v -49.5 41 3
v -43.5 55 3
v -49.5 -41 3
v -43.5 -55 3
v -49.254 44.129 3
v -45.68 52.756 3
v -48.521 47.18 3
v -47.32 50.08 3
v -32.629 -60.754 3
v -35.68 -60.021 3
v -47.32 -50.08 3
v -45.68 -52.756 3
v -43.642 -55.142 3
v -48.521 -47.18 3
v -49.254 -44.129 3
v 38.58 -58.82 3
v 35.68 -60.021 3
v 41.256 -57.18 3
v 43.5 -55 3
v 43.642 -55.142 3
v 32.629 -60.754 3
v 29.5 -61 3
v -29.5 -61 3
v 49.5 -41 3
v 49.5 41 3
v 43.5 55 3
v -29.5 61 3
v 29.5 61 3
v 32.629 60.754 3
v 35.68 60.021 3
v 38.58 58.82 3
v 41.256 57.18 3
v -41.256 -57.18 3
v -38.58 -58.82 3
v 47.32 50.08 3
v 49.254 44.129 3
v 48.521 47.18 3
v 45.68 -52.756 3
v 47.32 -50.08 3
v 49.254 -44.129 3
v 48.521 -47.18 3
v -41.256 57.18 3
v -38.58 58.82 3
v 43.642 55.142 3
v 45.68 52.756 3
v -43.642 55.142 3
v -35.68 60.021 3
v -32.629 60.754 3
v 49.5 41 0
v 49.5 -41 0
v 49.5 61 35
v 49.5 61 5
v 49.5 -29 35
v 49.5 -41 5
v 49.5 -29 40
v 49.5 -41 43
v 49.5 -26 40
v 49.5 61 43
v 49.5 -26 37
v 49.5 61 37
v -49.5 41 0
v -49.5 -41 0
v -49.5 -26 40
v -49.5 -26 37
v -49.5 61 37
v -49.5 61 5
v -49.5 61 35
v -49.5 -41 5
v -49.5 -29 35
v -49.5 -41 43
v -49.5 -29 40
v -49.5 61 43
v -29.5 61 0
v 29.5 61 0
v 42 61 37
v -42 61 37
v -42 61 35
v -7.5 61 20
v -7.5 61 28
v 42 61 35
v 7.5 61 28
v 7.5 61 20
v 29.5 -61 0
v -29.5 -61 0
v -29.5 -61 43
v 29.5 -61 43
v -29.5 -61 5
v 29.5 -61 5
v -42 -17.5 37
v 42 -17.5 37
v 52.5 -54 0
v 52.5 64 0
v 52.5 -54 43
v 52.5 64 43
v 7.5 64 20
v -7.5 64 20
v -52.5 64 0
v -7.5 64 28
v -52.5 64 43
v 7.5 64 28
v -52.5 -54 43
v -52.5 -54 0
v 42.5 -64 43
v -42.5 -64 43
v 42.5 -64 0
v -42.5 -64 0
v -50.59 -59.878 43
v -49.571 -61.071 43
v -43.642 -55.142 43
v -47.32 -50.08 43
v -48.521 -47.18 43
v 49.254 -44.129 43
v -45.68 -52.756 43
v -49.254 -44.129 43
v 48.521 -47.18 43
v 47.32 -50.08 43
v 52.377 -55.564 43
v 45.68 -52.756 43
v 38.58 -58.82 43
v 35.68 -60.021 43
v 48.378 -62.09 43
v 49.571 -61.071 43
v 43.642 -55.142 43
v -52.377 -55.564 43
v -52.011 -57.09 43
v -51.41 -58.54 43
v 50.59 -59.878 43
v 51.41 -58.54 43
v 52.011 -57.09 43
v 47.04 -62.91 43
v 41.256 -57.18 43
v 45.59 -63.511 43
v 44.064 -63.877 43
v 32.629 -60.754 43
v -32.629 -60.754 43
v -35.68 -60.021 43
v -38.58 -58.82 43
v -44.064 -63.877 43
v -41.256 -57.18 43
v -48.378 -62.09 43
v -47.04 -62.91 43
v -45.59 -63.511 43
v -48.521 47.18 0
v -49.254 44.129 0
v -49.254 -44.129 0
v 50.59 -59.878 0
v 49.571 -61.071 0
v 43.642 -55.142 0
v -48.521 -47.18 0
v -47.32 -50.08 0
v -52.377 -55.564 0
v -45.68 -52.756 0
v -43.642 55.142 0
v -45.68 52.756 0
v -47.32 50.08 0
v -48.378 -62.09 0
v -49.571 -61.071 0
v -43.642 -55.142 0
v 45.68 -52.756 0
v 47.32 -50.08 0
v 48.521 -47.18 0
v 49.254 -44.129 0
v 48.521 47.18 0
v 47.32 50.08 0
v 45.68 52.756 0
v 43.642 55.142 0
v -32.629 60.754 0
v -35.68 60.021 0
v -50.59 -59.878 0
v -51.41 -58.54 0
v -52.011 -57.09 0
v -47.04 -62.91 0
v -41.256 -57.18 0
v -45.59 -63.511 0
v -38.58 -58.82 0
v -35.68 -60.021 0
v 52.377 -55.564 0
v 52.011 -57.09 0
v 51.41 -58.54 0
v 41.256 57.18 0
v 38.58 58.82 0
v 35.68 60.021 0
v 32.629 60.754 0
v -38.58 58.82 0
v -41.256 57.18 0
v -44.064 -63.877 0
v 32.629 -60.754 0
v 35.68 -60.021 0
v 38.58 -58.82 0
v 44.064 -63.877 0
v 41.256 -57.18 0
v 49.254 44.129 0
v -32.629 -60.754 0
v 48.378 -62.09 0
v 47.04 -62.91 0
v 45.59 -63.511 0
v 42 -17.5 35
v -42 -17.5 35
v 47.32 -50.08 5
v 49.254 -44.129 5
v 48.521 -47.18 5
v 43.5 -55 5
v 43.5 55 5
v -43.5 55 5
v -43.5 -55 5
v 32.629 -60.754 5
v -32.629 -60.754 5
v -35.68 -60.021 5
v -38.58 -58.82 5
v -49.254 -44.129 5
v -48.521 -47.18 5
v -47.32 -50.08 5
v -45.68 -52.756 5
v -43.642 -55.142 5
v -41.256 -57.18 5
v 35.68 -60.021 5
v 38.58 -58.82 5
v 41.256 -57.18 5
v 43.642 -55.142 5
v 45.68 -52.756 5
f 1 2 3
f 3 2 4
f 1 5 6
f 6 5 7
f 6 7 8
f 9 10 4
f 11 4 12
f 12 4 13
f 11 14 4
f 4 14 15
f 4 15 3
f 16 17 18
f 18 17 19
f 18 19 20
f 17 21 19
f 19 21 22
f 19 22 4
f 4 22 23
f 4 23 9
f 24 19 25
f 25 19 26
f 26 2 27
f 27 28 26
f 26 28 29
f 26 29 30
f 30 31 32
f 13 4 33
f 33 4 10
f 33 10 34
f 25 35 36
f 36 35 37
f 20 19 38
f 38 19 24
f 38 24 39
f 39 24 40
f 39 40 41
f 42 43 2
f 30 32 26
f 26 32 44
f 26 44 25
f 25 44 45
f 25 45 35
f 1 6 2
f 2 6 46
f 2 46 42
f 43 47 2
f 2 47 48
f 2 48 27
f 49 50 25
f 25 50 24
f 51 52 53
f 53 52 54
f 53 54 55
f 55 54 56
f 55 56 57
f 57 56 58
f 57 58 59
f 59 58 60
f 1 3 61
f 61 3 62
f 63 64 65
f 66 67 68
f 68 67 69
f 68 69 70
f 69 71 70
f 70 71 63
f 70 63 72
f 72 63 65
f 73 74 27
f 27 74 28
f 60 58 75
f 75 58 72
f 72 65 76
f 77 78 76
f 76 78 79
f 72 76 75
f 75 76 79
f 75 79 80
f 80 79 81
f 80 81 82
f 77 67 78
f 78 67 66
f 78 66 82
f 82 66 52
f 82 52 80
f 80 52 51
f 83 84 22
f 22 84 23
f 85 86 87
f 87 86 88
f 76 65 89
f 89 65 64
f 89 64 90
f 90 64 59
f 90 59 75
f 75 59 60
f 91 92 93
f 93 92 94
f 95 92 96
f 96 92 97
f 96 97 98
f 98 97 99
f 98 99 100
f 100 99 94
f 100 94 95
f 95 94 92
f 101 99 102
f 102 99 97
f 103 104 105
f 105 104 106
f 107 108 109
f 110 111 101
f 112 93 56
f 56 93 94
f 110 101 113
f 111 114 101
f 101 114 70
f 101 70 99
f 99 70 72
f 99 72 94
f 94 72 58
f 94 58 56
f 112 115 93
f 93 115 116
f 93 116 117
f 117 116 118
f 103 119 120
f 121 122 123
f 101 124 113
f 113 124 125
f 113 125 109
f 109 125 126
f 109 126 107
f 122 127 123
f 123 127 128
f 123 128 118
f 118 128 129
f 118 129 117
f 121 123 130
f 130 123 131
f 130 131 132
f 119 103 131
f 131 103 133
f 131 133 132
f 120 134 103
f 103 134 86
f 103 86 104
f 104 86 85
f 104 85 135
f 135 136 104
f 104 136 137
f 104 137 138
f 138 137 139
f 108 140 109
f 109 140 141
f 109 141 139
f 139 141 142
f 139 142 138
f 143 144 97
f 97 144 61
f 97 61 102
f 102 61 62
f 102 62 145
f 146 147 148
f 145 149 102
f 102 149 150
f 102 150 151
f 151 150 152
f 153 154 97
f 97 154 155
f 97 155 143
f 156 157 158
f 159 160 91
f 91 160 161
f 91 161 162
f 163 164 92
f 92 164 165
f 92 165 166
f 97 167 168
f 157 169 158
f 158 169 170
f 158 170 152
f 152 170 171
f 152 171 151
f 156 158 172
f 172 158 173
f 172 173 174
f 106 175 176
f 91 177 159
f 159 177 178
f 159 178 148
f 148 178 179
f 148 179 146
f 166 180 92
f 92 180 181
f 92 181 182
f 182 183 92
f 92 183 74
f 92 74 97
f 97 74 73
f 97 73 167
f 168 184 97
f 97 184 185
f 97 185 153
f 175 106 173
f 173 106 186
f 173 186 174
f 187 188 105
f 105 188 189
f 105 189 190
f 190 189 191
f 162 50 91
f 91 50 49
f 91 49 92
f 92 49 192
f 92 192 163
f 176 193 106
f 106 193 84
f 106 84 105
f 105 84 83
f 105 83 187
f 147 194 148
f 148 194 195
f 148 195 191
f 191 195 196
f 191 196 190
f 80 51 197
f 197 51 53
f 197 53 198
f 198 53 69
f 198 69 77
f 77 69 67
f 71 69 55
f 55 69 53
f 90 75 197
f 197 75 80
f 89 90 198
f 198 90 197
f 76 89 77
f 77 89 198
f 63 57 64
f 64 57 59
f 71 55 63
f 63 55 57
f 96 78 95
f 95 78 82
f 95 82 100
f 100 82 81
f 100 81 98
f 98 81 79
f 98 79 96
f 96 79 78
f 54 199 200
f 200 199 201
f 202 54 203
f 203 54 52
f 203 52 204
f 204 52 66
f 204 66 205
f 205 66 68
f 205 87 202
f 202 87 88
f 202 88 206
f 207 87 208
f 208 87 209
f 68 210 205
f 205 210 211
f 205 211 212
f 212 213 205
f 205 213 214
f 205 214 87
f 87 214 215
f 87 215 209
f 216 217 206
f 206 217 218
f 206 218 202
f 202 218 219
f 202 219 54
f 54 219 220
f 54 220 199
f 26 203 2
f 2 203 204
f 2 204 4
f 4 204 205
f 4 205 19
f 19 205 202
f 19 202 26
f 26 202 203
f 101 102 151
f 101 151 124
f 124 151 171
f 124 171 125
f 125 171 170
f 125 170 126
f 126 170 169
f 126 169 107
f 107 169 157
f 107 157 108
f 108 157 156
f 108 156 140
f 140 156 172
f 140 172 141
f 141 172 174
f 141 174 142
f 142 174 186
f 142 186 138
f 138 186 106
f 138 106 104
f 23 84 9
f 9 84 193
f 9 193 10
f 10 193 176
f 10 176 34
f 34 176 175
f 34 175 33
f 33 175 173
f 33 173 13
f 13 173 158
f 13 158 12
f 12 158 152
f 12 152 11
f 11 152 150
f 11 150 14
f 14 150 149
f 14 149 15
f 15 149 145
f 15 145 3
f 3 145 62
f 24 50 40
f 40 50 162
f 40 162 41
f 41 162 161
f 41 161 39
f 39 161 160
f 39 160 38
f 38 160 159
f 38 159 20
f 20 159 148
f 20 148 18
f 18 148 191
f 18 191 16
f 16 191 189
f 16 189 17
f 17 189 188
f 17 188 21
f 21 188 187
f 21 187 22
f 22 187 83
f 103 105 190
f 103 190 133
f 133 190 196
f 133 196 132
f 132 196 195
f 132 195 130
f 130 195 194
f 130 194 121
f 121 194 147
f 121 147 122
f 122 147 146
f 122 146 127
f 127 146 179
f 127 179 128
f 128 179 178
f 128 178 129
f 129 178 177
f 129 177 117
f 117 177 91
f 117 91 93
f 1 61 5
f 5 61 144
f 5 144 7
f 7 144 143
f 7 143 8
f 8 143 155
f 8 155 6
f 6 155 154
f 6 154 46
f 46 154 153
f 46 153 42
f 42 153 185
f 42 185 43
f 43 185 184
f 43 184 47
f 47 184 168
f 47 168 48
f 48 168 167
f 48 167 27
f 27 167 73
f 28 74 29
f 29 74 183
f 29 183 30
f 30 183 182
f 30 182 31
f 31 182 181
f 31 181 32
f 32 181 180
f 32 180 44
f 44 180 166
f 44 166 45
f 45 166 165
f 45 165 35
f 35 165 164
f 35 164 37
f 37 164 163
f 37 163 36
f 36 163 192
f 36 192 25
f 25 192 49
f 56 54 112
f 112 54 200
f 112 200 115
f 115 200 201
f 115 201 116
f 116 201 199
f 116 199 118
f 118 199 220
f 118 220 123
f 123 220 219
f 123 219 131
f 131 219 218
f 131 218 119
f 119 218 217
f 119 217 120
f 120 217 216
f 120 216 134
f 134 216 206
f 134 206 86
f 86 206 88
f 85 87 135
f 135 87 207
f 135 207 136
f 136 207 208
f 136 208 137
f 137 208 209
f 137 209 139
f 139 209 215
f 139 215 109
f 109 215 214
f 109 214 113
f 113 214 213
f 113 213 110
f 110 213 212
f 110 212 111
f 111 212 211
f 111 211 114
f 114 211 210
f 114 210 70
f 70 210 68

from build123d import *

# Parameters (mm, degrees)
SKETCH_1_W          = 105
SKETCH_1_H          = 128
EXTRUDE_1_DEPTH     = 43
SKETCH_2_W          = 99
SKETCH_2_H          = 122
CUT_EXTRUDE_1_DEPTH = 50
SKETCH_3_W          = 99
SKETCH_3_H          = 2
EXTRUDE_2_DEPTH     = 90
CUT_EXTRUDE_2_REACH = 92.671
SKETCH_4_W          = 84
SKETCH_4_H          = 70
SKETCH_5_W          = 99
SKETCH_5_H          = 3
EXTRUDE_3_DEPTH     = 3
SKETCH_6_W          = 15
SKETCH_6_H          = 8
CUT_EXTRUDE_3_DEPTH = 10
SKETCH_8_W          = 84
SKETCH_8_H          = 8.5
CUT_EXTRUDE_4_DEPTH = 2
EXTRUDE_4_REACH     = 129.863
SKETCH_9_W          = 2
SKETCH_9_H          = 122
SKETCH_10_W         = 87
SKETCH_10_H         = 110
CUT_EXTRUDE_5_DEPTH = 8
FILLET_10_R         = 10
FILLET_11_R         = 20
FILLET_12_R         = 20
FILLET_13_R         = 10
FILLET_14_R         = 20
FILLET_15_R         = 20
FILLET_16_R         = 20


with BuildPart() as part:
    # 草图1 → 凸台-拉伸1 (new body)
    with BuildSketch(Plane.XY):
        Rectangle(SKETCH_1_W, SKETCH_1_H)
    extrude(amount=EXTRUDE_1_DEPTH)

    # 草图2 → 切除-拉伸1 (cut)
    with BuildSketch(Plane.XY.offset(43)):
        Rectangle(SKETCH_2_W, SKETCH_2_H)
    extrude(amount=-CUT_EXTRUDE_1_DEPTH, mode=Mode.SUBTRACT)

    # 草图3 → 凸台-拉伸2 (add)
    with BuildSketch(Plane.XZ.offset(-61)):
        with Locations((0, 36)):
            Rectangle(SKETCH_3_W, SKETCH_3_H)
    extrude(amount=EXTRUDE_2_DEPTH)

    # 草图4 → 切除-拉伸2 (cut, up to next)
    with BuildSketch(Plane.XY.offset(37), mode=Mode.PRIVATE) as cut_extrude_2_sk1:
        with Locations((0, 17.5)):
            Rectangle(SKETCH_4_W, SKETCH_4_H)
    cut_extrude_2_tool1 = extrude(cut_extrude_2_sk1.sketch, amount=-CUT_EXTRUDE_2_REACH, mode=Mode.PRIVATE) & part.part
    add(cut_extrude_2_tool1.solids().sort_by_distance((0, 17.5, 37))[0], mode=Mode.SUBTRACT)

    # 草图5 → 凸台-拉伸3 (add)
    with BuildSketch(Plane.XY.offset(37)):
        with Locations((0, -27.5)):
            Rectangle(SKETCH_5_W, SKETCH_5_H)
    extrude(amount=EXTRUDE_3_DEPTH)

    # 草图6 → 切除-拉伸3 (cut)
    with BuildSketch(Plane(origin=(0, 64, 0), x_dir=(1, 0, 0), z_dir=(0, 1, 0))):
        with Locations((0, -24)):
            Rectangle(SKETCH_6_W, SKETCH_6_H)
    extrude(amount=-CUT_EXTRUDE_3_DEPTH, mode=Mode.SUBTRACT)

    # 草图8 → 切除-拉伸4 (cut)
    with BuildSketch(Plane.XY.offset(37)):
        with Locations((0, 56.75)):
            Rectangle(SKETCH_8_W, SKETCH_8_H)
    extrude(amount=-CUT_EXTRUDE_4_DEPTH, mode=Mode.SUBTRACT)

    # 草图9 → 凸台-拉伸4 (add, up to next)
    with BuildSketch(Plane.ZY.offset(-49.5), mode=Mode.PRIVATE) as extrude_4_sk1:
        with Locations((4, 0)):
            Rectangle(SKETCH_9_W, SKETCH_9_H)
    extrude_4_tool1 = extrude(extrude_4_sk1.sketch, amount=EXTRUDE_4_REACH, mode=Mode.PRIVATE) - part.part
    add(extrude_4_tool1.solids().sort_by_distance((49.5, 0, 4))[0])

    # 草图10 → 切除-拉伸5 (cut)
    with BuildSketch(Plane(origin=(0, 0, 3), x_dir=(-1, 0, 0), z_dir=(0, 0, -1))):
        Rectangle(SKETCH_10_W, SKETCH_10_H)
    extrude(amount=-CUT_EXTRUDE_5_DEPTH, mode=Mode.SUBTRACT)

    # 圆角10
    fillet_10_edges = [part.edges().sort_by_distance(p)[0] for p in [
        (-52.5, -64, 21.5),
    ]]
    fillet(fillet_10_edges, radius=FILLET_10_R)

    # 圆角11
    fillet_11_edges = [part.edges().sort_by_distance(p)[0] for p in [
        (-49.5, -61, 1.5),
    ]]
    fillet(fillet_11_edges, radius=FILLET_11_R)

    # 圆角12
    fillet_12_edges = [part.edges().sort_by_distance(p)[0] for p in [
        (49.5, -61, 1.5),
    ]]
    fillet(fillet_12_edges, radius=FILLET_12_R)

    # 圆角13
    fillet_13_edges = [part.edges().sort_by_distance(p)[0] for p in [
        (52.5, -64, 21.5),
    ]]
    fillet(fillet_13_edges, radius=FILLET_13_R)

    # 圆角14
    fillet_14_edges = [part.edges().sort_by_distance(p)[0] for p in [
        (-49.5, 61, 1.5),
        (49.5, 61, 1.5),
    ]]
    fillet(fillet_14_edges, radius=FILLET_14_R)

    # 圆角15
    fillet_15_edges = [part.edges().sort_by_distance(p)[0] for p in [
        (49.5, -61, 24),
    ]]
    fillet(fillet_15_edges, radius=FILLET_15_R)

    # 圆角16
    fillet_16_edges = [part.edges().sort_by_distance(p)[0] for p in [
        (-49.5, -61, 24),
    ]]
    fillet(fillet_16_edges, radius=FILLET_16_R)


solid = part.part
